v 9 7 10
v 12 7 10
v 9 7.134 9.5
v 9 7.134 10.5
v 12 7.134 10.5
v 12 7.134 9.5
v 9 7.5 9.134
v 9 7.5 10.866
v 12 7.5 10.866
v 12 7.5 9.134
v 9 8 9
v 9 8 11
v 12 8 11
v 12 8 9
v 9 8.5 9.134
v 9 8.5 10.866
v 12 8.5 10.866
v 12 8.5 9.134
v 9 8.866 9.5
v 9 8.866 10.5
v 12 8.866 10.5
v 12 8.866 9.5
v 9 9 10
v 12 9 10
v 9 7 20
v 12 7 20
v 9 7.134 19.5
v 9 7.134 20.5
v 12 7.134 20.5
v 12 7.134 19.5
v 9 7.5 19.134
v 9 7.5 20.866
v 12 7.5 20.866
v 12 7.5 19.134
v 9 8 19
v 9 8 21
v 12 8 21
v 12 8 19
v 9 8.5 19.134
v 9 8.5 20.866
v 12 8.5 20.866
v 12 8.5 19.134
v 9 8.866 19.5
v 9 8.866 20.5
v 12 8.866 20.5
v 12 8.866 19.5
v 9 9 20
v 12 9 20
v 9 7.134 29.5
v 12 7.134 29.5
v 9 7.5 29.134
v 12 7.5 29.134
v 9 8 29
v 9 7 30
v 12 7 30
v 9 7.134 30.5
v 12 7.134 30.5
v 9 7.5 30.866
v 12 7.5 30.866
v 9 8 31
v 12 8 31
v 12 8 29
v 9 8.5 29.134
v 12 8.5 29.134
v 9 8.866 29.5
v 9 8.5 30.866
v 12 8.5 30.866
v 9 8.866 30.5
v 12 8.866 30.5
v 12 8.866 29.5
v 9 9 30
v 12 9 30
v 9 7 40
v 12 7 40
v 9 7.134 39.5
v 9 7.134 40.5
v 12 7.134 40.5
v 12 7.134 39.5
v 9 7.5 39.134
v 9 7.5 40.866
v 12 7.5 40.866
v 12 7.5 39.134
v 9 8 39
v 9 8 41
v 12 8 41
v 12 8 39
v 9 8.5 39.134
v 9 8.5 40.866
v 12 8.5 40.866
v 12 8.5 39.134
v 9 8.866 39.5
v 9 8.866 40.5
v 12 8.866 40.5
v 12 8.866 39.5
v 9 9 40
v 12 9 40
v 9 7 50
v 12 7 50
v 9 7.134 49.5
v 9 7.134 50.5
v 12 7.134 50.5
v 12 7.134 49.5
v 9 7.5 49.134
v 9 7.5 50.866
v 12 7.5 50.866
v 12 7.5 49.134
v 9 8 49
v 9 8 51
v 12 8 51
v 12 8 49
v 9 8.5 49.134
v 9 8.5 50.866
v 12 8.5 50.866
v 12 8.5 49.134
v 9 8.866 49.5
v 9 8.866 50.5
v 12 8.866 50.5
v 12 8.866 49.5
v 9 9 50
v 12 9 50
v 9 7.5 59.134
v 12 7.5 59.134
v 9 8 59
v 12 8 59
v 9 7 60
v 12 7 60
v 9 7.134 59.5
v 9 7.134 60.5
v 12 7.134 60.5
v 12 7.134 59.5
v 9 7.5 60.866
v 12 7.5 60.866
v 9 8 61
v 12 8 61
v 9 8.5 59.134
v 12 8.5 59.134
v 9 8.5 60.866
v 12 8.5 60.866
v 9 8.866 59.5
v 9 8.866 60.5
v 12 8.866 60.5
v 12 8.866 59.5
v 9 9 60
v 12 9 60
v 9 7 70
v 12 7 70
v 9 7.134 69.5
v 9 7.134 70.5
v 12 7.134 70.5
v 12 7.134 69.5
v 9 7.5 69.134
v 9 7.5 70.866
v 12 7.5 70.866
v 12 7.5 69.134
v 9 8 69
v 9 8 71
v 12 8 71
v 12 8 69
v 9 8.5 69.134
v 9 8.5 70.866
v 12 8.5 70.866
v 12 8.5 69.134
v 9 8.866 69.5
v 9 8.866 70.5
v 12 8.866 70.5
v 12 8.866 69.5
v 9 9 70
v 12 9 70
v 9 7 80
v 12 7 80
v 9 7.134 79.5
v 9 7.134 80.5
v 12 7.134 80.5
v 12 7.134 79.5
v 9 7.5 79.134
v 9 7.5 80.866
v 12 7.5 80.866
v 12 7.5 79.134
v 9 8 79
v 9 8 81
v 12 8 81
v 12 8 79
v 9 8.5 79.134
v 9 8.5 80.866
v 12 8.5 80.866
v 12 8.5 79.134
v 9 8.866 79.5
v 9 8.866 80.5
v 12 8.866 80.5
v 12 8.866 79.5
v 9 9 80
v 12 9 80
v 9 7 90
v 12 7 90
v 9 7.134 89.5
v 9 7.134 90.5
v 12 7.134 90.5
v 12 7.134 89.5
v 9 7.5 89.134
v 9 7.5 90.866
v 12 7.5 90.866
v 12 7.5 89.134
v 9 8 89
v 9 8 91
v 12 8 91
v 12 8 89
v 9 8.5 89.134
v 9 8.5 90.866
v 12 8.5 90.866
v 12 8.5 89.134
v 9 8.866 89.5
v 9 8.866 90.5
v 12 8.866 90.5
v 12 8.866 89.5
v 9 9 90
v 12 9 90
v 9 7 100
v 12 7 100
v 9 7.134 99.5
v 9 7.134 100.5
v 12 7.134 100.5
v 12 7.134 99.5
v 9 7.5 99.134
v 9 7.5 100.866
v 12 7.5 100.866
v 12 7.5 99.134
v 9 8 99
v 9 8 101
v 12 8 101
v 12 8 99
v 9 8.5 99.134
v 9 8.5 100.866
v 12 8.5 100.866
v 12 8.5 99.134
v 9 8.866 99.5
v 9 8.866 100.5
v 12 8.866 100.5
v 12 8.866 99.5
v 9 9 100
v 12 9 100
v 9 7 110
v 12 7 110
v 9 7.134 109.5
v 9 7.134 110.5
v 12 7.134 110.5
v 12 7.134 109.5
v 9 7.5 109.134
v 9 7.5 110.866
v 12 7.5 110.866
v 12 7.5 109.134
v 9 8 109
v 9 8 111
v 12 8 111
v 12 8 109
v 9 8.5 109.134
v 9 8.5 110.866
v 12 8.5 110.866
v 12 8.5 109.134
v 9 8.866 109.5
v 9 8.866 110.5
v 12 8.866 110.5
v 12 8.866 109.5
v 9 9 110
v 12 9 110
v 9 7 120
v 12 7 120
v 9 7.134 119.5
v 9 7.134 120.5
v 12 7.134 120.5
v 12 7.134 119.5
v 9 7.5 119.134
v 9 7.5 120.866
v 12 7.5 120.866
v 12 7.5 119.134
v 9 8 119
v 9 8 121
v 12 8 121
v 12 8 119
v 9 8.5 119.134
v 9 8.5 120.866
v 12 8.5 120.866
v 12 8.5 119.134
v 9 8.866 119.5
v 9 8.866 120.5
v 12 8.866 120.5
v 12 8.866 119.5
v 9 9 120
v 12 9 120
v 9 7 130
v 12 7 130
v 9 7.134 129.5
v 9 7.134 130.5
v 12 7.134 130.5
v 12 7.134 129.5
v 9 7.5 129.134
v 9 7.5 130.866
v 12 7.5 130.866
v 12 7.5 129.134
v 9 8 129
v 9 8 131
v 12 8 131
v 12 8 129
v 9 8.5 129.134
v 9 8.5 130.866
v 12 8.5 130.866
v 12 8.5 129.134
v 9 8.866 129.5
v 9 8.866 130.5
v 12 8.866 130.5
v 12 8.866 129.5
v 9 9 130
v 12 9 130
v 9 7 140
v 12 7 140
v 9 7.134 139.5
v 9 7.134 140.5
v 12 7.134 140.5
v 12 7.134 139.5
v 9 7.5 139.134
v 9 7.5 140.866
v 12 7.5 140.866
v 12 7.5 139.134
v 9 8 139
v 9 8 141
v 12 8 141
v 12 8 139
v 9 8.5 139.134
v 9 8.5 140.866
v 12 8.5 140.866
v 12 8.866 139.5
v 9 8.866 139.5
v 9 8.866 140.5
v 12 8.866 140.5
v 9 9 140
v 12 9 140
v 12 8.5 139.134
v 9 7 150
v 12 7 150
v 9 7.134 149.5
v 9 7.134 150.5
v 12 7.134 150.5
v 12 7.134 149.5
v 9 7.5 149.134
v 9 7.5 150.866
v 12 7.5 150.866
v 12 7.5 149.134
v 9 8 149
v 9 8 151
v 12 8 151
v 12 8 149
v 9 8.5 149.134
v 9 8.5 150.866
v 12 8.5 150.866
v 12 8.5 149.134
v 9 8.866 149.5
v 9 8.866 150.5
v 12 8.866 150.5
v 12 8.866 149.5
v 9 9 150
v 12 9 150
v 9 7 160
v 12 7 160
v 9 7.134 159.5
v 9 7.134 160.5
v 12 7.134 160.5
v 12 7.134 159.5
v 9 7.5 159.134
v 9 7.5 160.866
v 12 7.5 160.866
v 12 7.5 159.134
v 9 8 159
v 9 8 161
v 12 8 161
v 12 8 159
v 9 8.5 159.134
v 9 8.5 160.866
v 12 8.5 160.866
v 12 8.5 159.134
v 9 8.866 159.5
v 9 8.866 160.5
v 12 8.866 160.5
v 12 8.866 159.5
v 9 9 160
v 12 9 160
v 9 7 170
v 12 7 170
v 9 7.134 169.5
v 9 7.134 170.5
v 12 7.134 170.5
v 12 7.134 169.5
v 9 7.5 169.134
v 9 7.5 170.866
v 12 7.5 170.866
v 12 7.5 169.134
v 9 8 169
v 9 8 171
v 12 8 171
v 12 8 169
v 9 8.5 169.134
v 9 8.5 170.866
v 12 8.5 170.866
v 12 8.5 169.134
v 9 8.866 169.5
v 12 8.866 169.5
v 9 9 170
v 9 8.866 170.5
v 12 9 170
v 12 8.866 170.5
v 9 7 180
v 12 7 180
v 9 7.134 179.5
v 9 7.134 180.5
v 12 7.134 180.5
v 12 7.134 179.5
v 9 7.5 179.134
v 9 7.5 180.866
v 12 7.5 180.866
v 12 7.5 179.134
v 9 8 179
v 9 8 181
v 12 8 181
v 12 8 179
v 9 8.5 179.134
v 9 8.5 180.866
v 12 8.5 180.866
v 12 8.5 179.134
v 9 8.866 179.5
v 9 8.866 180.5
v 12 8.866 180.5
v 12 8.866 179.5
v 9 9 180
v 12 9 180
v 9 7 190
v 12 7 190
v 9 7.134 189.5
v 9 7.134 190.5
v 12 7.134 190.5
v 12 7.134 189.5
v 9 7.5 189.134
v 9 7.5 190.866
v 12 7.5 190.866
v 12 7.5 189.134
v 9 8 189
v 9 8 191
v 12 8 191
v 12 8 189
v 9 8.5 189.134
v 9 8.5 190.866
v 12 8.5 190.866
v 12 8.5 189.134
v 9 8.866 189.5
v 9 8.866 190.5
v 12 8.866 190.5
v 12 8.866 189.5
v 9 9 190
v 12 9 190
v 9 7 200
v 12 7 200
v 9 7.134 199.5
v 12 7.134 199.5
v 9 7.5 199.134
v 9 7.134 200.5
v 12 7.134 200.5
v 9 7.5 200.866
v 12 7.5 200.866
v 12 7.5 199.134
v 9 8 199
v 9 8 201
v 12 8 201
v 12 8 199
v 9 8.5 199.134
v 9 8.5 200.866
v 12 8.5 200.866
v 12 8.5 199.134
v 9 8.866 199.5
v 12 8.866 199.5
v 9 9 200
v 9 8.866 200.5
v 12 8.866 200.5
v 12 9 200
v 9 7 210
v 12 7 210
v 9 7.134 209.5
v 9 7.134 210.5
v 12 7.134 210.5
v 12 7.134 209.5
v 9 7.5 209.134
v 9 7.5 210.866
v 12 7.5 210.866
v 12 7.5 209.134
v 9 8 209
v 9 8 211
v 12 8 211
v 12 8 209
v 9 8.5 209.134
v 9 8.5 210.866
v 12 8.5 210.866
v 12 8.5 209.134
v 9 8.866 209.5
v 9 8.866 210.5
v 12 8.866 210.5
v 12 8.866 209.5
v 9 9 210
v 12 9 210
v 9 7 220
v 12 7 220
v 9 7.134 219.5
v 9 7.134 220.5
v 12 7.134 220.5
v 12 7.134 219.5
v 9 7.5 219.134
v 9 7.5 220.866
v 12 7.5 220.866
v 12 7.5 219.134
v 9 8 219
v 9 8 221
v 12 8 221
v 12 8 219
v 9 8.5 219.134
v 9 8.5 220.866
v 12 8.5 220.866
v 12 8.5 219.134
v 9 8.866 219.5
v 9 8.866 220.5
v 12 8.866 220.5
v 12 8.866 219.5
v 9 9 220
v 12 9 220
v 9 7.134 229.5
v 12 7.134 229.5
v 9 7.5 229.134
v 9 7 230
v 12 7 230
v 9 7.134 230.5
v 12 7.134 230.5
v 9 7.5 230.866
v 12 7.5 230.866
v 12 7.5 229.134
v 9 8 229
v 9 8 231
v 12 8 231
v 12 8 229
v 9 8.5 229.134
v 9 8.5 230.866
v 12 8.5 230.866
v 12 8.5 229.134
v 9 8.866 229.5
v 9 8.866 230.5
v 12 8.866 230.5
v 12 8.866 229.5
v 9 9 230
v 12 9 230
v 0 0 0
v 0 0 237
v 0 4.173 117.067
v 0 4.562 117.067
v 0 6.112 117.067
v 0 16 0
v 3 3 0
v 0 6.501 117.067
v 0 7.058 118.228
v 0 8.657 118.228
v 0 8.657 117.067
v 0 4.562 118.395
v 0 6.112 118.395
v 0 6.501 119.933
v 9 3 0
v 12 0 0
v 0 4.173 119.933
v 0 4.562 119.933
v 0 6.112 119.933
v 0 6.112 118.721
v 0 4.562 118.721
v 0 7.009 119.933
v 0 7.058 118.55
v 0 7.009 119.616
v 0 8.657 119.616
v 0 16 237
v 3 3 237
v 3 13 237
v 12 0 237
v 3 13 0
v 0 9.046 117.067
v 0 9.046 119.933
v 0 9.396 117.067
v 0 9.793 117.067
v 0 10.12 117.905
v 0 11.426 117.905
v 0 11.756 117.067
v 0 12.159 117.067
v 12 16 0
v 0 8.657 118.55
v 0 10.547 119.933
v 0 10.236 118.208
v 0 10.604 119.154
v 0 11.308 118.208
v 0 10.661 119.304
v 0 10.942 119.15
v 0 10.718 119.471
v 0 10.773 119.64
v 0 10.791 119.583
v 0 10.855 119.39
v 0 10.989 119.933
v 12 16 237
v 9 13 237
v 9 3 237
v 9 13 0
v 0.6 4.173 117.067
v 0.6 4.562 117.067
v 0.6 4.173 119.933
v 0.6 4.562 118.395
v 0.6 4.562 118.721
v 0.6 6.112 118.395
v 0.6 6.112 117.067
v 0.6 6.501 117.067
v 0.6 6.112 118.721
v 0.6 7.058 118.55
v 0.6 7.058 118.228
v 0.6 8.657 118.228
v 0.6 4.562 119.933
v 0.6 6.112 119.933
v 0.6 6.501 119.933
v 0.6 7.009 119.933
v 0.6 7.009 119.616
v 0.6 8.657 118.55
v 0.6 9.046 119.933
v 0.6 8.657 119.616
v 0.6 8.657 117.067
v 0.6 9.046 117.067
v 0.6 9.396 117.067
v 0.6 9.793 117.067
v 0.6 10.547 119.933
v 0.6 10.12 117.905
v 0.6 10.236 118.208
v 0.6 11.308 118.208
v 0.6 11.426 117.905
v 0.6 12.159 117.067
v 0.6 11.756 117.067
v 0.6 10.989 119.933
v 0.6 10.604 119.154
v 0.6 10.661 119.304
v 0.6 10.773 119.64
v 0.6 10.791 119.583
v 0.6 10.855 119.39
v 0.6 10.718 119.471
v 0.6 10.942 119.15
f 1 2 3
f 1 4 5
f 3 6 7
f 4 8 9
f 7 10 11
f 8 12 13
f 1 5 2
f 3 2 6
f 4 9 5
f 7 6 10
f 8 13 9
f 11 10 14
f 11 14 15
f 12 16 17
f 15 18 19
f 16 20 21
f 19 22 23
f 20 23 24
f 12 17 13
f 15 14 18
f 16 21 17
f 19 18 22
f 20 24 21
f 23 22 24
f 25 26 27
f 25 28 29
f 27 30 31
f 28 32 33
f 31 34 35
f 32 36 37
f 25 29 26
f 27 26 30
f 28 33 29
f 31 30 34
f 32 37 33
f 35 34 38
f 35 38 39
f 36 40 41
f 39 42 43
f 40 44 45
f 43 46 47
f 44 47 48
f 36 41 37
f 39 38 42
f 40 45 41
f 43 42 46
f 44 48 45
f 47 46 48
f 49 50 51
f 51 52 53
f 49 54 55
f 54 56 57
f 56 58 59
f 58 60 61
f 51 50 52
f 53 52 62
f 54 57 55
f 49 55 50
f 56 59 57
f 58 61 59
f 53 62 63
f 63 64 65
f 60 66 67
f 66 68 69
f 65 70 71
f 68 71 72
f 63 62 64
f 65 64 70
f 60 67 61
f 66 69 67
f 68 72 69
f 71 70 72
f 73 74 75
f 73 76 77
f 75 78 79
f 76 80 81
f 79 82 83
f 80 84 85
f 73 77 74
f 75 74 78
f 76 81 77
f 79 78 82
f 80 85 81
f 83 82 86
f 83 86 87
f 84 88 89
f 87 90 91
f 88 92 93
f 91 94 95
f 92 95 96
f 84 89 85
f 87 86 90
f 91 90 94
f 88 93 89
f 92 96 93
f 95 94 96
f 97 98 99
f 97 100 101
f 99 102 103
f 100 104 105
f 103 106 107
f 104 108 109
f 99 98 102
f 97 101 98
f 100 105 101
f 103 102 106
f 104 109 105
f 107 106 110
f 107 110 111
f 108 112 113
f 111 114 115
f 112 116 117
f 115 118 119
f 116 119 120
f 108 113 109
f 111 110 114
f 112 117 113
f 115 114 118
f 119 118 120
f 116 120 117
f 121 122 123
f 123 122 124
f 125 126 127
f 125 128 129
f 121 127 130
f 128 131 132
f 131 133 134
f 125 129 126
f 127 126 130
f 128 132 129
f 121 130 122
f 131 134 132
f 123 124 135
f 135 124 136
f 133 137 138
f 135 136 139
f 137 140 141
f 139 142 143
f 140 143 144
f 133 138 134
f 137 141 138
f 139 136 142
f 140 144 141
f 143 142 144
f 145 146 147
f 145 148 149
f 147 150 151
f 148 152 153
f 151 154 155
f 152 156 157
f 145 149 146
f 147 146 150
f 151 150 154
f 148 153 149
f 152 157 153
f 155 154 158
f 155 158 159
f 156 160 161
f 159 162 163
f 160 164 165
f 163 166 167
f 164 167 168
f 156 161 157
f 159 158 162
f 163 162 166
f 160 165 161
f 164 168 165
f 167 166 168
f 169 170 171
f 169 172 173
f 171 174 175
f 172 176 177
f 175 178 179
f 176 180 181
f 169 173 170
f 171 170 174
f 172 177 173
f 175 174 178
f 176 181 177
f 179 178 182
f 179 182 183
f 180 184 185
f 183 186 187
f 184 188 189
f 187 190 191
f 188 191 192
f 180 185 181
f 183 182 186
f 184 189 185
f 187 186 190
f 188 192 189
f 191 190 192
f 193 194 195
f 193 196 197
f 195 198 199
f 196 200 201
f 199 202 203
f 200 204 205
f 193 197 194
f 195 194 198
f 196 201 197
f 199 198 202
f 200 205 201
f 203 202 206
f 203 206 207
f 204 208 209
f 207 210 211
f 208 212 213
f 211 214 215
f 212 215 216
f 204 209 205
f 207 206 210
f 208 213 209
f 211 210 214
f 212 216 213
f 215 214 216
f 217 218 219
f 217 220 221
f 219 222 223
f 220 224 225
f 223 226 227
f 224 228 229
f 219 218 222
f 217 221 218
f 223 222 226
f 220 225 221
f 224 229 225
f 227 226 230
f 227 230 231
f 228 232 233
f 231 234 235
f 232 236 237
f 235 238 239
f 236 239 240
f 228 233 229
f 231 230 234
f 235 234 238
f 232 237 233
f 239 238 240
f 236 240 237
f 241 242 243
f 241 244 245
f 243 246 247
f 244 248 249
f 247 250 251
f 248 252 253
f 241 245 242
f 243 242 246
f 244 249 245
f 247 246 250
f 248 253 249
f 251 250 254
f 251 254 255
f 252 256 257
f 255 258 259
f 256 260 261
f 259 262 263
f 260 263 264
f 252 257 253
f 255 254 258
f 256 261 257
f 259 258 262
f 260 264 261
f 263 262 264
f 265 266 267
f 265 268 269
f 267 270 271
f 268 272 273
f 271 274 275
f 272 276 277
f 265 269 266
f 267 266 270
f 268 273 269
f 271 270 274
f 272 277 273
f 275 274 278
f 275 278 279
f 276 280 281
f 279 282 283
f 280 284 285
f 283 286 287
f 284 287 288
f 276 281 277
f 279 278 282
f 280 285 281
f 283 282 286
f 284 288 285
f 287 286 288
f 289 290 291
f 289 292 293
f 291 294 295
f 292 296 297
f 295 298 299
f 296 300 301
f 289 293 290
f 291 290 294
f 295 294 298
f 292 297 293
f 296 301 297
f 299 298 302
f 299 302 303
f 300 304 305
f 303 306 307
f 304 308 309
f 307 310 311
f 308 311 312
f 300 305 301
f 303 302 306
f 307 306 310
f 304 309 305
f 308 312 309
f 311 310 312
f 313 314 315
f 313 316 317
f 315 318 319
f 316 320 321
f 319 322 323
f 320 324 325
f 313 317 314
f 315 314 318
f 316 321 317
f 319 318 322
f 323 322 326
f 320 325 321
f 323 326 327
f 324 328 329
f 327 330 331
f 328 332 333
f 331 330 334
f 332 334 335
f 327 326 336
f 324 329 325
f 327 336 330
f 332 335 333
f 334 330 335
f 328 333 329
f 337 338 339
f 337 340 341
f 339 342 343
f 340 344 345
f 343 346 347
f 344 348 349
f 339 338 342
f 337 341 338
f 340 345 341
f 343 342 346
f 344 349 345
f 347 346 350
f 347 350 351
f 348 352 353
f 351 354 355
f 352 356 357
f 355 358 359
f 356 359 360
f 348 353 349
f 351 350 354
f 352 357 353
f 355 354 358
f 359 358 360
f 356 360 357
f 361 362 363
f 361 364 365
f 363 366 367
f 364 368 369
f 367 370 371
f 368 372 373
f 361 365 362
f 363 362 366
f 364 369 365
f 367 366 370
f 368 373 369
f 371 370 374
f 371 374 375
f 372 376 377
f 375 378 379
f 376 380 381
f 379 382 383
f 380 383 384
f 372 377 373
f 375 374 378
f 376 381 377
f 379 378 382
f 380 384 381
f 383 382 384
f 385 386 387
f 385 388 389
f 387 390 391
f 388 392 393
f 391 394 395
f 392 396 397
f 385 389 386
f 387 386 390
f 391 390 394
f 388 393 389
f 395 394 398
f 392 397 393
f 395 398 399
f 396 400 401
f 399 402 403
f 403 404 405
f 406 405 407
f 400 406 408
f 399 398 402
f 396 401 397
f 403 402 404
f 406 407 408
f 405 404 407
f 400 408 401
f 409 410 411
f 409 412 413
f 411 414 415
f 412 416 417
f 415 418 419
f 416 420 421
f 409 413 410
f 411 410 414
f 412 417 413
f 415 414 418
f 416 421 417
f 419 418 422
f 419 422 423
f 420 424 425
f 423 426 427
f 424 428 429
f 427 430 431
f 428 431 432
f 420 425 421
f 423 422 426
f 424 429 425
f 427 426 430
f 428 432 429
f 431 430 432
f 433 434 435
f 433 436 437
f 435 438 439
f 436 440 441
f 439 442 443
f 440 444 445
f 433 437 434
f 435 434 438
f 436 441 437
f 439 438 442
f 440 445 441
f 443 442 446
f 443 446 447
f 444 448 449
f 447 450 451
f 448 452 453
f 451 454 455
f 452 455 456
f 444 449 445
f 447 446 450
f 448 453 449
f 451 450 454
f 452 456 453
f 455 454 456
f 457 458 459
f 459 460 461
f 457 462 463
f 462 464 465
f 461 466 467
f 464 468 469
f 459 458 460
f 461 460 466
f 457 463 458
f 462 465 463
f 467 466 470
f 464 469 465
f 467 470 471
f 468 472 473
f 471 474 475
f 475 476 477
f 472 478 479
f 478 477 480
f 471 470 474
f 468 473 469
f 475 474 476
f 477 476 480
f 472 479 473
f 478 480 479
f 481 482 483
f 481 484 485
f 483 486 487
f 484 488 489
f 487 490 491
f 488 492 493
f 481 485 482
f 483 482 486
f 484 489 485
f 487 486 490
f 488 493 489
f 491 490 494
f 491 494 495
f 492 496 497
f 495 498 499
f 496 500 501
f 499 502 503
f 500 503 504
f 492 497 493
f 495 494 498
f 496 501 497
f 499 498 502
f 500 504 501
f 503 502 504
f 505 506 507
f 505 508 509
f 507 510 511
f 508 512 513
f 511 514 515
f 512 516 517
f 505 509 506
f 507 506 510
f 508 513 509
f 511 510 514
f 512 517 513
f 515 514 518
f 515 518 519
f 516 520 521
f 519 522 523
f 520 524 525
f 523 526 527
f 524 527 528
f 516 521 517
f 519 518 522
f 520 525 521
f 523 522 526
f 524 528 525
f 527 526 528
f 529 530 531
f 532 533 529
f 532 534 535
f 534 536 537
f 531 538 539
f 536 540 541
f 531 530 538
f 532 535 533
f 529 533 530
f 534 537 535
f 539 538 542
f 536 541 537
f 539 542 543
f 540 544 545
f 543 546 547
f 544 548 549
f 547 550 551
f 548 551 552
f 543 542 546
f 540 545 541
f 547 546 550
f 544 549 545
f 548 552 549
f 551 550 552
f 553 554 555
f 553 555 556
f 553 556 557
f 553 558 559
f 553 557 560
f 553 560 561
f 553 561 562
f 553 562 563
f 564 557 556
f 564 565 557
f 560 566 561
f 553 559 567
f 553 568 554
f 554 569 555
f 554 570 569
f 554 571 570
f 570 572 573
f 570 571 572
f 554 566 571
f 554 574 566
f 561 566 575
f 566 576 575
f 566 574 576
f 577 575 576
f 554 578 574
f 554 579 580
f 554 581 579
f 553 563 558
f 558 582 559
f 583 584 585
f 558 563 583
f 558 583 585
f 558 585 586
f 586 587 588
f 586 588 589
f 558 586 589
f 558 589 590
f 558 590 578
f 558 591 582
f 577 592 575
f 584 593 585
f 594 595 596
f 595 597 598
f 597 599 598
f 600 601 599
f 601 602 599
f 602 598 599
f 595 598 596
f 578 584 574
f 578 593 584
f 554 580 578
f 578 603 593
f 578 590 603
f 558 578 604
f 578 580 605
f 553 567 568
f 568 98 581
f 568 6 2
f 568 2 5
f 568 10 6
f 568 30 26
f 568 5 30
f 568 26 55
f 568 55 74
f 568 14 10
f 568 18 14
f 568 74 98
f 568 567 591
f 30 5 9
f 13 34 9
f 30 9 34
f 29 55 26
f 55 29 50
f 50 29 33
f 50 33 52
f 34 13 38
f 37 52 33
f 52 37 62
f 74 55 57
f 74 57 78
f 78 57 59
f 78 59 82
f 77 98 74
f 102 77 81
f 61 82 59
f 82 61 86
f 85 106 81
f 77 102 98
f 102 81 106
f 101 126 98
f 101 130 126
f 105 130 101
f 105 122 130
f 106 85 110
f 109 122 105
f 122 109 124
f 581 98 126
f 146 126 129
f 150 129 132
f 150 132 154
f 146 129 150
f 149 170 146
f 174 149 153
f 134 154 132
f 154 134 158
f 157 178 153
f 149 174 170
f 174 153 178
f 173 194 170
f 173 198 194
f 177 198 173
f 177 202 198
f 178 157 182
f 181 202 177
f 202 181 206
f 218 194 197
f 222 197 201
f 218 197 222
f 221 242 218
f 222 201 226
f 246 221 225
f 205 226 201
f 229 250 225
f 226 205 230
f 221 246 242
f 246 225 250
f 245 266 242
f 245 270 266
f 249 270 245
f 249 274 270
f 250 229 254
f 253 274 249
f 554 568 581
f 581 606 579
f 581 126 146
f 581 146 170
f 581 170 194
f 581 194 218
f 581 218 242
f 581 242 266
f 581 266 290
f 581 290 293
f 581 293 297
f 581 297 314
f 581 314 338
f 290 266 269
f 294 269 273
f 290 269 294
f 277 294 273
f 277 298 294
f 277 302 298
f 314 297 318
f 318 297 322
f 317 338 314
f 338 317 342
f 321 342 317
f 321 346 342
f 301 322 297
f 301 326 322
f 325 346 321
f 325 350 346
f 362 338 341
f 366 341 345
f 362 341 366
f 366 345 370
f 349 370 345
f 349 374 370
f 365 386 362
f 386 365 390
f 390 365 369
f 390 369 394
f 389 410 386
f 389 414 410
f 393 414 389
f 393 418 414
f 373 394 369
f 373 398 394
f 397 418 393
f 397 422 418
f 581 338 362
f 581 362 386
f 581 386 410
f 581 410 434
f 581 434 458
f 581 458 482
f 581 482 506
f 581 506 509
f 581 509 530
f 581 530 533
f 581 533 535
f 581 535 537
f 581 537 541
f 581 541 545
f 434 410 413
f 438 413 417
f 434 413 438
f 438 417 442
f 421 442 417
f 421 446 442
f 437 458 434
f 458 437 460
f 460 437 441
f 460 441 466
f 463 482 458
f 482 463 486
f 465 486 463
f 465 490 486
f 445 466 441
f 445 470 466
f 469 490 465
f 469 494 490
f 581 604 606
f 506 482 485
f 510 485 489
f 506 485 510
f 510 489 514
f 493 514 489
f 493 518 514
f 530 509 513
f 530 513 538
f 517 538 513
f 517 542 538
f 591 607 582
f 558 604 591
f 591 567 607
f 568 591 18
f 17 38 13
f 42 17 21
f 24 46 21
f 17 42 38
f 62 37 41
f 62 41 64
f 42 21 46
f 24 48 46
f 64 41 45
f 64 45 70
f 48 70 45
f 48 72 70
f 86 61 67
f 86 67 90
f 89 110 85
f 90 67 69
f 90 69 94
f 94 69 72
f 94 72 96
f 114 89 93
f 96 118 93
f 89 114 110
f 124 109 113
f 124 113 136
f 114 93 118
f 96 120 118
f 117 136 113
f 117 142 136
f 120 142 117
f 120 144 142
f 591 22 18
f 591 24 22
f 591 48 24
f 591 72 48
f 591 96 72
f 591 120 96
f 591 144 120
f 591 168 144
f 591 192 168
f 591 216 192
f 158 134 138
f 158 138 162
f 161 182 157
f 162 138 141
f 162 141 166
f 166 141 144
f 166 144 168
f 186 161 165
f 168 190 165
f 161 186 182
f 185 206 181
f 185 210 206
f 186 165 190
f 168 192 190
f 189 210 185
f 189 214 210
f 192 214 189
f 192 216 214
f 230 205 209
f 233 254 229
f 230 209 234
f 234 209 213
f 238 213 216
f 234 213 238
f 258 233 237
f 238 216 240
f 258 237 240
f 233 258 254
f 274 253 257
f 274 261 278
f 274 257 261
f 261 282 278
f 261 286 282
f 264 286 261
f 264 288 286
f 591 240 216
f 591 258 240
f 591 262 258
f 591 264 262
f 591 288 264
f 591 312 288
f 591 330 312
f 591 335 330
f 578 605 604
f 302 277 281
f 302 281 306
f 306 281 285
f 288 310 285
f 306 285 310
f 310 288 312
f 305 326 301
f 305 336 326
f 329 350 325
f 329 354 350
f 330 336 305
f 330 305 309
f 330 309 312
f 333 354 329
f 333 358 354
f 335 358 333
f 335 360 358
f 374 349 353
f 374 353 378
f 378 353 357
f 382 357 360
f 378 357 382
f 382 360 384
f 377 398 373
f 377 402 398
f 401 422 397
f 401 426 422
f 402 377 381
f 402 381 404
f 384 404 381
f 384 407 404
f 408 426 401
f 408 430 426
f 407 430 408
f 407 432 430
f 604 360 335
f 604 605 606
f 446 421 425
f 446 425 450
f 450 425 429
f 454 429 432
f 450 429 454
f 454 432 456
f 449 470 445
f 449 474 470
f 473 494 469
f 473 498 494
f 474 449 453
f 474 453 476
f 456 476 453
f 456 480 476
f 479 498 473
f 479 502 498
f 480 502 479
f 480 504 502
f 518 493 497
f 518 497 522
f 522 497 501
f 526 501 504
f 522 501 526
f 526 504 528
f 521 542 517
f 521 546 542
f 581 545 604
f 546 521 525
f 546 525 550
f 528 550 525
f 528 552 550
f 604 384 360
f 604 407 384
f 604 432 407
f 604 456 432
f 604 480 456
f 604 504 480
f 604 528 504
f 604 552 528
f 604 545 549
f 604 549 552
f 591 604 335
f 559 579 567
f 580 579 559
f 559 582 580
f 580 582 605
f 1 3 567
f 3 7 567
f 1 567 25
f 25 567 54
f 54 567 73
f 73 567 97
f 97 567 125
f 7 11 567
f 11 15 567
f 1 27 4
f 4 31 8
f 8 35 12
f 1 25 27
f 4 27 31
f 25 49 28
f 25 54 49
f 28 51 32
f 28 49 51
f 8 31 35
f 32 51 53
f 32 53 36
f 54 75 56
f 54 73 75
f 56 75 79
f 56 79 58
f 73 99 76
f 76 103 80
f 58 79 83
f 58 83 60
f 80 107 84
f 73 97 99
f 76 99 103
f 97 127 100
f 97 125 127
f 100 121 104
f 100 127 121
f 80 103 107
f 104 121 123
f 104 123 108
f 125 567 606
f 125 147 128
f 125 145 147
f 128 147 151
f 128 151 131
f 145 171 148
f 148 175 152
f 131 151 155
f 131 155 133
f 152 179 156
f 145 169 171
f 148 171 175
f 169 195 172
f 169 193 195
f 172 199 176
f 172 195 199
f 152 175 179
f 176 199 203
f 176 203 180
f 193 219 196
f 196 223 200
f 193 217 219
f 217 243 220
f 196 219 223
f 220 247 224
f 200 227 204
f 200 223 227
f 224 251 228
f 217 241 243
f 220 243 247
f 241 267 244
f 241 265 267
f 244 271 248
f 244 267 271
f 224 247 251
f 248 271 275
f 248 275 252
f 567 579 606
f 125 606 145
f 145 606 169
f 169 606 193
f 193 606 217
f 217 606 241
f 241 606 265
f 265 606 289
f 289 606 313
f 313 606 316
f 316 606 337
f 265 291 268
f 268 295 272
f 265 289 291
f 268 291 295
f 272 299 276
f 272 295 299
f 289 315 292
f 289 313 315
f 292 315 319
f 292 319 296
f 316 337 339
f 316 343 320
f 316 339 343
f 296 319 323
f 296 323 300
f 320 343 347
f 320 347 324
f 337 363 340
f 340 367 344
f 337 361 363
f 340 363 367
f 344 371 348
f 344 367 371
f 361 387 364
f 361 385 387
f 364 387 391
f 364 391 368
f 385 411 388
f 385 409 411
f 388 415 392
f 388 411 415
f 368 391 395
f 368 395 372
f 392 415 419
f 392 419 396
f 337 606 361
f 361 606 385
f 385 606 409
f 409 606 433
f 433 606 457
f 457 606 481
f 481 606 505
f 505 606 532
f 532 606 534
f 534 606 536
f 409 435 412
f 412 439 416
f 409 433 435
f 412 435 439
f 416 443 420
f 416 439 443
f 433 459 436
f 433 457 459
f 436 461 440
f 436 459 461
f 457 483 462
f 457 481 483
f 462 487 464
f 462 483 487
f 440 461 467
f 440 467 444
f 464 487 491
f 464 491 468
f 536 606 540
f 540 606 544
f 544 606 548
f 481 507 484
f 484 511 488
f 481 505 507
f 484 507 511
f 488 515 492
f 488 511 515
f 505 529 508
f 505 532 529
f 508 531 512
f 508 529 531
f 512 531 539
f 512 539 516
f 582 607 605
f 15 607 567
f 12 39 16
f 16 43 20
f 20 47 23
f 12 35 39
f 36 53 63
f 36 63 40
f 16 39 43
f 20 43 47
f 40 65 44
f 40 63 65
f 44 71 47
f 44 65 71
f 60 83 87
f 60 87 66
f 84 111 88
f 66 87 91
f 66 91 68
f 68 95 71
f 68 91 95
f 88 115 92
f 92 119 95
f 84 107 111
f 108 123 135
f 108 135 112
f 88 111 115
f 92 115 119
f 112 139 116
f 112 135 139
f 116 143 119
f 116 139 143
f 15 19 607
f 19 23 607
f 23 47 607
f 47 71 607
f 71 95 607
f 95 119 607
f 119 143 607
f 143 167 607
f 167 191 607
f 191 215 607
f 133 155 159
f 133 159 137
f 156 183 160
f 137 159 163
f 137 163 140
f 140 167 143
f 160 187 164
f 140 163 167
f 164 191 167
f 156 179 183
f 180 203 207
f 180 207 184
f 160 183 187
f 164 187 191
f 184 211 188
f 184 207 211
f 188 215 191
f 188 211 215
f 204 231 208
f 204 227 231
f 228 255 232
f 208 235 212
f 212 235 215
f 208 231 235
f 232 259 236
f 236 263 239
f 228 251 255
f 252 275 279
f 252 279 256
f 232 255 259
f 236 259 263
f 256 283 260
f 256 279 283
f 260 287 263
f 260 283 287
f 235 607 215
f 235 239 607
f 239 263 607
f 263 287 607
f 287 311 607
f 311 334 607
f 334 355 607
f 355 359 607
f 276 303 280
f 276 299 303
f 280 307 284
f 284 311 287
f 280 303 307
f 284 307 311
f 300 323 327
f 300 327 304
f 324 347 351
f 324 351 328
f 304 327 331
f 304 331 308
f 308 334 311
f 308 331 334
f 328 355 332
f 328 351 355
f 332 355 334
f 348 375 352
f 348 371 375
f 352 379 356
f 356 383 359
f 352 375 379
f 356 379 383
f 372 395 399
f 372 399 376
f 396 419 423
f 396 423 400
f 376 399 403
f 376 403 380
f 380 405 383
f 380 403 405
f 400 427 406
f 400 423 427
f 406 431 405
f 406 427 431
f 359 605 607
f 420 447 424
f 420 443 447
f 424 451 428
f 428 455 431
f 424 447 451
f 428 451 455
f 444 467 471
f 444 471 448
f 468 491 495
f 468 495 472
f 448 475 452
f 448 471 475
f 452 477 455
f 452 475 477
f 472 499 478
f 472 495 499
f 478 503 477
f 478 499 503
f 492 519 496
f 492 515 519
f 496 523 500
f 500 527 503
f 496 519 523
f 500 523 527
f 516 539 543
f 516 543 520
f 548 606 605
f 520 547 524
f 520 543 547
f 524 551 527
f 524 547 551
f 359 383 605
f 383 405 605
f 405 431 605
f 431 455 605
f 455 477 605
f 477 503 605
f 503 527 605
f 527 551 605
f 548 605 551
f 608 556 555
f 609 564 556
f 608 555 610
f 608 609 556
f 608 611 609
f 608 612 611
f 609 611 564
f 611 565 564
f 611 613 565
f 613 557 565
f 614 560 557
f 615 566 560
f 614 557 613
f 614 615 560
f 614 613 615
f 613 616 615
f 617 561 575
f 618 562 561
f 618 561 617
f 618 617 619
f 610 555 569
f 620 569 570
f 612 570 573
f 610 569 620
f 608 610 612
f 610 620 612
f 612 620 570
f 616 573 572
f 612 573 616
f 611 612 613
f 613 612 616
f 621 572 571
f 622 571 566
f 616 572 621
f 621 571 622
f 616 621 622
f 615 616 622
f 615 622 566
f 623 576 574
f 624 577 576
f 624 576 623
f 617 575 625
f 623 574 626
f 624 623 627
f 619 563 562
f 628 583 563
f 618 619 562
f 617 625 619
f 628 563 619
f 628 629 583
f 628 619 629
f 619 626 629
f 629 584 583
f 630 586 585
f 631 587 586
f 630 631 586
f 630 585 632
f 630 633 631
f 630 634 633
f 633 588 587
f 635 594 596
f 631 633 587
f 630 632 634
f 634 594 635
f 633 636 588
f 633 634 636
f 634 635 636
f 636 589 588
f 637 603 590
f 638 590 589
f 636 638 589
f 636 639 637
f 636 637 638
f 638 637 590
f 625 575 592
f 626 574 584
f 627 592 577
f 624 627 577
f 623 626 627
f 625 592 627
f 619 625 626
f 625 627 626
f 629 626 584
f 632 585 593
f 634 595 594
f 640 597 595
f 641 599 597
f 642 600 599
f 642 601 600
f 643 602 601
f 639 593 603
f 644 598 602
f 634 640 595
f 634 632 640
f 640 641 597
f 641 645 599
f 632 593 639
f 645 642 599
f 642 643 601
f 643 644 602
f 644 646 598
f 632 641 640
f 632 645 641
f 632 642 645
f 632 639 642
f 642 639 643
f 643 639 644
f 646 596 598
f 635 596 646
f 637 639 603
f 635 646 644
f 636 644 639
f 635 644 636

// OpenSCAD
// file: ../../lib/emboss.scad
// cad/lib/emboss.scad
include <../generated/dims.scad>

module engrave(code, at, z, size = LABEL_SIZE, facing = -1, spin = 0) {
    if (facing < 0)
        translate([at[0] + LABEL_DEPTH, at[1], z]) rotate([90, 0, -90])
            linear_extrude(LABEL_DEPTH + 0.01) rotate(spin) text(code, size = size, halign = "center", valign = "center");
    else
        translate([at[0] - LABEL_DEPTH, at[1], z]) rotate([90, 0, 90])
            linear_extrude(LABEL_DEPTH + 0.01) rotate(-spin) text(code, size = size, halign = "center", valign = "center");
}
// file: ../dims.scad
MAX_SEG = 240.0;
JOINT_GAP = 1.0;
DEPTH = 63.0;
FRAME_W = 58.0;
FRAME_BODY = 40.0;
TRANSOM_W = 70.0;
TRANSOM_HALF_BODY = 17.0;
SASH_W = 51.0;
SASH_BODY = 33.0;
SASH_Y0 = 2.0;
SASH_GAP = 13.0;
STAY_W = 14.0;
SCREEN_W = 30.0;
SCREEN_DEPTH = 20.0;
SCREEN_OVERLAP = 10.0;
SCREEN_SHELL = 4.0;
GLASS_T = 24.0;
TWINWALL_T = 16.0;
GLASS_CLEAR = 3.0;
GASKET_T = 3.0;
GASKET_IN = 4.0;
GLASS_EDGE = 43.0;
TRANSOM_GLASS = 20.0;
SASH_GLASS = 36.0;
STOP_T = 8.0;
GLASS_Y0 = 11.0;
BEAD_W = 16.0;
BEAD_T = 10.0;
KEY_Y = 43.0;
KEY_D = 4.0;
KEY_H = 4.0;
KEY_LIP = 0.8;
KEY_THROAT = 1.2;
FIN_Y0 = 20.0;
FIN_Y1 = 28.0;
FIN_L = 8.0;
ISTOP_Y0 = 54.0;
FLANGE_Y1 = 17.0;
FLANGE_L = 11.0;
LIP_Y0 = 46.0;
LIP_Y1 = 52.0;
LIP_L = 8.0;
KERF_W = 3.0;
KERF_D = 5.0;
MAG_W = 13.0;
MAG_D = 2.0;
SPLINE_W = 4.0;
SPLINE_D = 5.0;
SPACER_W = 12.0;
ACRYLIC_T = 4.0;
SETTING_L = 100.0;
WEEP_CAP_H = 12.0;
WEEP_CAP_T = 1.5;
TUBE_FRAME = [20.0, 20.0];
TUBE_TRANSOM = [20.0, 40.0];
TUBE_SASH = [20.0, 20.0];
TUBE_SCREEN = [10.0, 10.0];
SOCKET_FRAME = 28.0;
SOCKET_SASH = 21.0;
SOCKET_SCREEN = 12.0;
TUBE_END_CLEAR = 1.5;
TUBE_CLEAR = 0.3;
MIN_SHELL = 6.0;
CHAMBER_WALL = 2.5;
MIN_SKIN = 1.5;
END_CAP = 4.0;
CORD_D = 3.0;
CORD_INSET = 1.5;
FIX_Y = 16.0;
FIX_Y_IN = 48.0;
FIX_DZ = 7.0;
FIX_D = 5.0;
FIX_CB_D = 10.0;
FIX_CB_L = 6.0;
FIX_BOSS_D = 15.0;
TUBE_SCREW_D = 4.2;
CSK_D = 8.6;
TRANSOM_SCREW_X = 39.0;
INSERT_M4_D = 5.6;
INSERT_M4_L = 8.0;
BOSS_PITCH = 24.0;
CAM_ALIGN_TOL = 1.0;
DOVE_W = 16.0;
DOVE_FLARE = 3.0;
DOVE_D = 6.0;
DOVE_CLEAR = 0.3;
LOCK_U = 3.0;
LOCK_D = 3.3;
LOCK_L = 22.0;
NODE_FIX_OFFSET = 25.0;
SHOE_WALL = 3.0;
HINGE_BOSS_X = 21.0;
CAM_BOSS_X = 47.0;
TRANSOM_MAG_X = 20.0;
LABEL_DEPTH = 0.6;
LABEL_SIZE = 5.0;
BEAD_LABEL = 3.0;
WEEP_W = 20.0;
WEEP_H = 5.0;
SILL_SLOPE_DEG = 8.0;
NOSE_KEY_X = 10.0;
NOSE_KEY_W = 6.0;
NOSE_KEY_D = 4.0;
NOSE_PROJECTION = 15.0;
MULLION_W = 70.0;
MULLION_HALF_BODY = 17.0;
MULLION_DOVE_D = 4.0;
VSLOT_SHIFT = 3.0;
VSLOT_MOUTH = 9.16;
VSLOT_NECK = 6.25;
VSLOT_LIP = 1.8;
VSLOT_FLOOR = 6.1;
VSLOT_SHOULDER = [5.6, 8.5];
VSLOT_TIP = [5.0, 5.8];
VSLOT_SCREW_D = 5.5;
VSLOT_CSK_D = 10.0;
VSLOT_M5_L = [10, 12, 16, 20, 25, 30, 35, 40];
VSLOT_TRANSOM_X = 41.25;
EDGE_R = 2.0;
JOINT_BEVEL = 0.8;
BEVEL_STEP = 0.2;
HANDLE_R = 3.0;
// file: ../../parts/acrylic_spacer.scad
// cad/parts/acrylic_spacer.scad
include <../generated/dims.scad>
use <../profile.scad>
use <../lib/emboss.scad>

function spacer_t(gap) = is_undef(gap) ? GLASS_T - 2 * ACRYLIC_T : gap;

module spacer_channel(gap) { rect(3, 3, SPACER_W - 3, spacer_t(gap) - 3); }

module acrylic_spacer(len, code, gap) {
    difference() {
        linear_extrude(len) rect(0, 0, SPACER_W, spacer_t(gap));
        translate([0, 0, -0.01]) linear_extrude(len + 0.02) spacer_channel(gap);
        for (z = [10 : 10 : len - 5])
            translate([SPACER_W - 3.5, spacer_t(gap) / 2, z]) rotate([0, 90, 0]) cylinder(d = 2, h = 4, $fn = 12);
        engrave(code, [0, spacer_t(gap) / 2], len / 2, 3);
    }
}

module acrylic_spacer_corner(code, gap) {
    leg = 15;
    plug = [SPACER_W - 6 - 0.3, spacer_t(gap) - 6 - 0.3];
    linear_extrude(spacer_t(gap)) square([SPACER_W, SPACER_W]);
    translate([SPACER_W, 3.15, 3.15]) cube([leg, plug[0], plug[1]]);
    translate([3.15, SPACER_W, 3.15]) cube([plug[0], leg, plug[1]]);
}
// main file
use <../../parts/acrylic_spacer.scad>
acrylic_spacer(237.0, "AFH");
